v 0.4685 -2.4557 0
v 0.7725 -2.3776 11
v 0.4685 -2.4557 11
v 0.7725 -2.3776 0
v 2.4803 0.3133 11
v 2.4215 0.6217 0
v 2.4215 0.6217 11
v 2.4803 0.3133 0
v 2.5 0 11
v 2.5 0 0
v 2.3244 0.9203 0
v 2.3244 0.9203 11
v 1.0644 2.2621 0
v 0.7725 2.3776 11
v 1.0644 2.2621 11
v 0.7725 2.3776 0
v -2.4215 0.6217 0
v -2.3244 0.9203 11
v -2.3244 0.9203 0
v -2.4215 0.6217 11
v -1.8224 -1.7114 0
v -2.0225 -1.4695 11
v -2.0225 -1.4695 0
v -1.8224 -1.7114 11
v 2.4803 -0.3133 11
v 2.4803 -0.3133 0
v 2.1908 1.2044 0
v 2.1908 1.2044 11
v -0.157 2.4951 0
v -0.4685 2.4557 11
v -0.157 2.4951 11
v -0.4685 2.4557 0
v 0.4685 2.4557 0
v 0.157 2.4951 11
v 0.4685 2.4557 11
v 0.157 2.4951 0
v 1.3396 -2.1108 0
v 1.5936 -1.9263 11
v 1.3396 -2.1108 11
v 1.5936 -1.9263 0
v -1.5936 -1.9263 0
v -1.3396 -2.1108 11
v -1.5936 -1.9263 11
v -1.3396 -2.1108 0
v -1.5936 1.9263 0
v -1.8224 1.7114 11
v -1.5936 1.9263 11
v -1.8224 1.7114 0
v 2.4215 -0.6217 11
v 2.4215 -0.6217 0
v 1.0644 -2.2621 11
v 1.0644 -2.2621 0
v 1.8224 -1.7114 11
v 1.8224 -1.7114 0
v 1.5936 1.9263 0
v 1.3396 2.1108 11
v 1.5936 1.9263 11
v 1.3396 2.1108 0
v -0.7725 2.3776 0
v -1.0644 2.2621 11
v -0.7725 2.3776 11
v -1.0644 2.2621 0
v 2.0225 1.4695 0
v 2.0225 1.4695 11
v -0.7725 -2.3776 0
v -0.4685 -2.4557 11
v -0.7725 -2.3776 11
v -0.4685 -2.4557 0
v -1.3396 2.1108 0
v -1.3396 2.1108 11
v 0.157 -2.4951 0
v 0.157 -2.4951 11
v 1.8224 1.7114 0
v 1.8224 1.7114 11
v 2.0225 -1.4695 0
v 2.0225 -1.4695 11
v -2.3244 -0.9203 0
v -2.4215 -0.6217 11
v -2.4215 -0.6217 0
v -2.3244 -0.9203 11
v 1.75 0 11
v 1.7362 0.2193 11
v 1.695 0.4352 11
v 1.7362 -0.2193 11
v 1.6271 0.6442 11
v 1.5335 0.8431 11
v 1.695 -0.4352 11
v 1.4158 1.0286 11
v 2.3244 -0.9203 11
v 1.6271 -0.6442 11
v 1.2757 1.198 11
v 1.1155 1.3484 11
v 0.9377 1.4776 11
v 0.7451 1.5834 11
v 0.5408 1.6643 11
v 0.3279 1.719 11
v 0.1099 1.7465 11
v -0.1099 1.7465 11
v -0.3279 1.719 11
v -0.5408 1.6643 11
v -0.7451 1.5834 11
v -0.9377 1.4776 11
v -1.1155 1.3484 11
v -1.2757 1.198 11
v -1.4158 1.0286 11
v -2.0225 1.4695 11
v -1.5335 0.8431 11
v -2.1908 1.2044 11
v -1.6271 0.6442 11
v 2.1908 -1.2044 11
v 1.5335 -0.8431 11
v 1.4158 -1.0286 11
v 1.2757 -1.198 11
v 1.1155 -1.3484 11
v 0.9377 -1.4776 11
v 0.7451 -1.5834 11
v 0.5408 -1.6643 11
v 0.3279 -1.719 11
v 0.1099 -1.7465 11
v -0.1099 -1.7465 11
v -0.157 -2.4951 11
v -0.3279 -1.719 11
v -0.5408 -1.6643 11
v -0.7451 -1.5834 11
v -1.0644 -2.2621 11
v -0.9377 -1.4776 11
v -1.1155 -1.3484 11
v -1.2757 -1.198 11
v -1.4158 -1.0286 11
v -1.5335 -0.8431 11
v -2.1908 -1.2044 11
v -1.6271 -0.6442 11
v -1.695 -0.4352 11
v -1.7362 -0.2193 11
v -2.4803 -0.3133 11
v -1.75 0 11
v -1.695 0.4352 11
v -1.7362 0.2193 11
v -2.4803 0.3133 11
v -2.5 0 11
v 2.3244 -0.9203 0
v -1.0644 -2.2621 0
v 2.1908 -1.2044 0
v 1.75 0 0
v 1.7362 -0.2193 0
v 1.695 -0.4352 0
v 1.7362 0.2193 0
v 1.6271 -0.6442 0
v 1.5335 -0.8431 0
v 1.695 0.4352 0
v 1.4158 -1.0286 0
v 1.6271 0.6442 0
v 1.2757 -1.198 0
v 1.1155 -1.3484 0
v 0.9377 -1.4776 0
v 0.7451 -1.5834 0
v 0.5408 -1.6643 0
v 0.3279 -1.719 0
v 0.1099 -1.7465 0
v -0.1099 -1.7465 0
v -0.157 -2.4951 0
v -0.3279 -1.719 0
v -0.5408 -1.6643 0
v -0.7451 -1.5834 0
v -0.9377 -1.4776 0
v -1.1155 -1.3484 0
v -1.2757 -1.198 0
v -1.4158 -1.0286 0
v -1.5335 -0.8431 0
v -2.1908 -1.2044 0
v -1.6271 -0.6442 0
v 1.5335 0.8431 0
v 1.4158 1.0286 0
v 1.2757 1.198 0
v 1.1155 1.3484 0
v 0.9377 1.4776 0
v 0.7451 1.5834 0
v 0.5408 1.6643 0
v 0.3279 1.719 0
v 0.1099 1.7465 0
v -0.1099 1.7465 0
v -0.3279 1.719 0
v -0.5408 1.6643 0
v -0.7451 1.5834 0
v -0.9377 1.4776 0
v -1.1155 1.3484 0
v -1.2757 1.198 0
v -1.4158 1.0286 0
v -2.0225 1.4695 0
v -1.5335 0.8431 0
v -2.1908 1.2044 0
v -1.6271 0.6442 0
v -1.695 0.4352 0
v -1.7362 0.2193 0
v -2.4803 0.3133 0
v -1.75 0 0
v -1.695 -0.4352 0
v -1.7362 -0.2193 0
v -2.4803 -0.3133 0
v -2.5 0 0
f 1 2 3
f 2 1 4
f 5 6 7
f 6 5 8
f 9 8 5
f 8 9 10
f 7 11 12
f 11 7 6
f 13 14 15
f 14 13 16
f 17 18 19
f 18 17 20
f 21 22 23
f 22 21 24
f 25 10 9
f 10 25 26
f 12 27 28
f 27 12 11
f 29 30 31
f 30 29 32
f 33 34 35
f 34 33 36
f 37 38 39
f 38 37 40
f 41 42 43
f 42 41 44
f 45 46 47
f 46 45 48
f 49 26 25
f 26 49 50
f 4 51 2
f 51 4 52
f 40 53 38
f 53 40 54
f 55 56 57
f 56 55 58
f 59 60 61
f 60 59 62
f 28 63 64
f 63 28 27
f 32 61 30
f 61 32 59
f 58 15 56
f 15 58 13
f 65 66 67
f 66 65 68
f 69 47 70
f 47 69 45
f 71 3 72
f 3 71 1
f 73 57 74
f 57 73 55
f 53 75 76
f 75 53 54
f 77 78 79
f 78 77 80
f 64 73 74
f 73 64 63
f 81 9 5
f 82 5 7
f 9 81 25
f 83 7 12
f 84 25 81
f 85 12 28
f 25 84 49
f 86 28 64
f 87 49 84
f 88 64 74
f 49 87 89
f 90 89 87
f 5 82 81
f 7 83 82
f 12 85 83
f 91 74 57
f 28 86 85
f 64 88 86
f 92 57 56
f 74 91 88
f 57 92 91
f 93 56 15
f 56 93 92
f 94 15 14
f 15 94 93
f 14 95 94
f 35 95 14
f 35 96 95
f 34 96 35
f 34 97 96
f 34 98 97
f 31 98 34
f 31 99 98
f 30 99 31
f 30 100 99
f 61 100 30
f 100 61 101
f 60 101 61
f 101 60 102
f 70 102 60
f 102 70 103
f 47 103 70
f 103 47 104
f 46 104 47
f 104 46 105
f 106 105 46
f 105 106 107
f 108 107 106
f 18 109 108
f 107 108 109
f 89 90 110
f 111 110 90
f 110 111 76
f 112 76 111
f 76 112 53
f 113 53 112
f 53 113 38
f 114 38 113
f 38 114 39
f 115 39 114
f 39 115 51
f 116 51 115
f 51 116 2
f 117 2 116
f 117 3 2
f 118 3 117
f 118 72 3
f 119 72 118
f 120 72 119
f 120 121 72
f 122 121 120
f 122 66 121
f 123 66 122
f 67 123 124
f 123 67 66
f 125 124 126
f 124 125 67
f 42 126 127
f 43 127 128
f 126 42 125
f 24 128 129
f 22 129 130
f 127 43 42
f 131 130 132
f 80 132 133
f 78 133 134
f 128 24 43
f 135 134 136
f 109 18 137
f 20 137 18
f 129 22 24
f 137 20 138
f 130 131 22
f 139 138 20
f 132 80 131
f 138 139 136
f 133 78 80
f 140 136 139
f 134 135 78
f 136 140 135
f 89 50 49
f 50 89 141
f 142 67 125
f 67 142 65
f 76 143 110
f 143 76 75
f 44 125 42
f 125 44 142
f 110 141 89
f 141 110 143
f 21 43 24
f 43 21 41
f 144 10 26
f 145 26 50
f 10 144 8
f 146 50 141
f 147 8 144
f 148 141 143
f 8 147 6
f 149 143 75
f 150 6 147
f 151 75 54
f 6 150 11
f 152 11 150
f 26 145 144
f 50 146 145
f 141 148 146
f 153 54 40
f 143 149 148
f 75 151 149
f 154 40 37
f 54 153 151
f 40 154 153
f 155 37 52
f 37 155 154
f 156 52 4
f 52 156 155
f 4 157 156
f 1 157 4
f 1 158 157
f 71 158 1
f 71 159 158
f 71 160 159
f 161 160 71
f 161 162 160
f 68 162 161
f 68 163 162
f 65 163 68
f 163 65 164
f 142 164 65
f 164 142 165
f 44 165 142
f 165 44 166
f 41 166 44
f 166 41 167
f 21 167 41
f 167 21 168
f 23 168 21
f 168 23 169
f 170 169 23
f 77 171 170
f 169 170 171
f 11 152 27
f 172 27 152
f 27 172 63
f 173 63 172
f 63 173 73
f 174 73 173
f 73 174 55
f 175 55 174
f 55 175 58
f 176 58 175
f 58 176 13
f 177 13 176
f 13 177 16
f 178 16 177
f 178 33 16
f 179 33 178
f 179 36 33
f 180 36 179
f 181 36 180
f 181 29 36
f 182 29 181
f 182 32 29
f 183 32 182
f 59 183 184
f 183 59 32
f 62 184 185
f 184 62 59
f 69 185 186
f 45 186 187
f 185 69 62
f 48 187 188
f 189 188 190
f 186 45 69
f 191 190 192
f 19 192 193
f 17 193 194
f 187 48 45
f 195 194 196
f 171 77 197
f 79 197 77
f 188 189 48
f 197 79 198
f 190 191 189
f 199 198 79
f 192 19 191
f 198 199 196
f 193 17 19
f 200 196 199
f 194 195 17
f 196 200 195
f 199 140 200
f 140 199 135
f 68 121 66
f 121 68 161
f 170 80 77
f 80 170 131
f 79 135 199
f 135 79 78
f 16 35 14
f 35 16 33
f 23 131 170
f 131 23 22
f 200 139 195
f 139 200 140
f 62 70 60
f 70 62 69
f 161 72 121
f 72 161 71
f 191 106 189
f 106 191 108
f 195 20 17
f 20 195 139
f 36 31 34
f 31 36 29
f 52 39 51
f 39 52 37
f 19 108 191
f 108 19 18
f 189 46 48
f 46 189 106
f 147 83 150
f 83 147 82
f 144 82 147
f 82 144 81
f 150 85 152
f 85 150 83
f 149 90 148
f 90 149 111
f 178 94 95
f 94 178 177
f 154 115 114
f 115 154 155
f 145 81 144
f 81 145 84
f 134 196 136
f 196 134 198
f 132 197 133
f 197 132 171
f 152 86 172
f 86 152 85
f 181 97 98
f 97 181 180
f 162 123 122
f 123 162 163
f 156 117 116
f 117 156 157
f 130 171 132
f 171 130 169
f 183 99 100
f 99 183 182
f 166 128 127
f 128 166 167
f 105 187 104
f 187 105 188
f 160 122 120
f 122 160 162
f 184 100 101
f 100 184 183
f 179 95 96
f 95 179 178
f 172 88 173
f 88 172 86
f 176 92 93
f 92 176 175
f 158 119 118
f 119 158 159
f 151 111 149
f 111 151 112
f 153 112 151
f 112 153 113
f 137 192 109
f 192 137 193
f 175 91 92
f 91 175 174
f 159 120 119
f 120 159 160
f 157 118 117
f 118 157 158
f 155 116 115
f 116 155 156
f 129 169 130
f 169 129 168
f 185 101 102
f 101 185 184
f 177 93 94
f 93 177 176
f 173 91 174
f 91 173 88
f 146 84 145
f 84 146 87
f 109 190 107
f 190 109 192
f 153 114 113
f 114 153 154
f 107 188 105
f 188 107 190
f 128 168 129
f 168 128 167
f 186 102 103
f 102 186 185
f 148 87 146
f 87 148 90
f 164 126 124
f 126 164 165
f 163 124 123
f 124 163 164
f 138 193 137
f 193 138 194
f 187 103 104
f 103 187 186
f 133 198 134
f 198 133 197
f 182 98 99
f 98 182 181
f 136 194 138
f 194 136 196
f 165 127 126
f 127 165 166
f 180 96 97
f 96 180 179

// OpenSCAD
$fn=50;
difference() {
    cylinder(11, d=5);
    cylinder(13, d=3.5);
    
}
